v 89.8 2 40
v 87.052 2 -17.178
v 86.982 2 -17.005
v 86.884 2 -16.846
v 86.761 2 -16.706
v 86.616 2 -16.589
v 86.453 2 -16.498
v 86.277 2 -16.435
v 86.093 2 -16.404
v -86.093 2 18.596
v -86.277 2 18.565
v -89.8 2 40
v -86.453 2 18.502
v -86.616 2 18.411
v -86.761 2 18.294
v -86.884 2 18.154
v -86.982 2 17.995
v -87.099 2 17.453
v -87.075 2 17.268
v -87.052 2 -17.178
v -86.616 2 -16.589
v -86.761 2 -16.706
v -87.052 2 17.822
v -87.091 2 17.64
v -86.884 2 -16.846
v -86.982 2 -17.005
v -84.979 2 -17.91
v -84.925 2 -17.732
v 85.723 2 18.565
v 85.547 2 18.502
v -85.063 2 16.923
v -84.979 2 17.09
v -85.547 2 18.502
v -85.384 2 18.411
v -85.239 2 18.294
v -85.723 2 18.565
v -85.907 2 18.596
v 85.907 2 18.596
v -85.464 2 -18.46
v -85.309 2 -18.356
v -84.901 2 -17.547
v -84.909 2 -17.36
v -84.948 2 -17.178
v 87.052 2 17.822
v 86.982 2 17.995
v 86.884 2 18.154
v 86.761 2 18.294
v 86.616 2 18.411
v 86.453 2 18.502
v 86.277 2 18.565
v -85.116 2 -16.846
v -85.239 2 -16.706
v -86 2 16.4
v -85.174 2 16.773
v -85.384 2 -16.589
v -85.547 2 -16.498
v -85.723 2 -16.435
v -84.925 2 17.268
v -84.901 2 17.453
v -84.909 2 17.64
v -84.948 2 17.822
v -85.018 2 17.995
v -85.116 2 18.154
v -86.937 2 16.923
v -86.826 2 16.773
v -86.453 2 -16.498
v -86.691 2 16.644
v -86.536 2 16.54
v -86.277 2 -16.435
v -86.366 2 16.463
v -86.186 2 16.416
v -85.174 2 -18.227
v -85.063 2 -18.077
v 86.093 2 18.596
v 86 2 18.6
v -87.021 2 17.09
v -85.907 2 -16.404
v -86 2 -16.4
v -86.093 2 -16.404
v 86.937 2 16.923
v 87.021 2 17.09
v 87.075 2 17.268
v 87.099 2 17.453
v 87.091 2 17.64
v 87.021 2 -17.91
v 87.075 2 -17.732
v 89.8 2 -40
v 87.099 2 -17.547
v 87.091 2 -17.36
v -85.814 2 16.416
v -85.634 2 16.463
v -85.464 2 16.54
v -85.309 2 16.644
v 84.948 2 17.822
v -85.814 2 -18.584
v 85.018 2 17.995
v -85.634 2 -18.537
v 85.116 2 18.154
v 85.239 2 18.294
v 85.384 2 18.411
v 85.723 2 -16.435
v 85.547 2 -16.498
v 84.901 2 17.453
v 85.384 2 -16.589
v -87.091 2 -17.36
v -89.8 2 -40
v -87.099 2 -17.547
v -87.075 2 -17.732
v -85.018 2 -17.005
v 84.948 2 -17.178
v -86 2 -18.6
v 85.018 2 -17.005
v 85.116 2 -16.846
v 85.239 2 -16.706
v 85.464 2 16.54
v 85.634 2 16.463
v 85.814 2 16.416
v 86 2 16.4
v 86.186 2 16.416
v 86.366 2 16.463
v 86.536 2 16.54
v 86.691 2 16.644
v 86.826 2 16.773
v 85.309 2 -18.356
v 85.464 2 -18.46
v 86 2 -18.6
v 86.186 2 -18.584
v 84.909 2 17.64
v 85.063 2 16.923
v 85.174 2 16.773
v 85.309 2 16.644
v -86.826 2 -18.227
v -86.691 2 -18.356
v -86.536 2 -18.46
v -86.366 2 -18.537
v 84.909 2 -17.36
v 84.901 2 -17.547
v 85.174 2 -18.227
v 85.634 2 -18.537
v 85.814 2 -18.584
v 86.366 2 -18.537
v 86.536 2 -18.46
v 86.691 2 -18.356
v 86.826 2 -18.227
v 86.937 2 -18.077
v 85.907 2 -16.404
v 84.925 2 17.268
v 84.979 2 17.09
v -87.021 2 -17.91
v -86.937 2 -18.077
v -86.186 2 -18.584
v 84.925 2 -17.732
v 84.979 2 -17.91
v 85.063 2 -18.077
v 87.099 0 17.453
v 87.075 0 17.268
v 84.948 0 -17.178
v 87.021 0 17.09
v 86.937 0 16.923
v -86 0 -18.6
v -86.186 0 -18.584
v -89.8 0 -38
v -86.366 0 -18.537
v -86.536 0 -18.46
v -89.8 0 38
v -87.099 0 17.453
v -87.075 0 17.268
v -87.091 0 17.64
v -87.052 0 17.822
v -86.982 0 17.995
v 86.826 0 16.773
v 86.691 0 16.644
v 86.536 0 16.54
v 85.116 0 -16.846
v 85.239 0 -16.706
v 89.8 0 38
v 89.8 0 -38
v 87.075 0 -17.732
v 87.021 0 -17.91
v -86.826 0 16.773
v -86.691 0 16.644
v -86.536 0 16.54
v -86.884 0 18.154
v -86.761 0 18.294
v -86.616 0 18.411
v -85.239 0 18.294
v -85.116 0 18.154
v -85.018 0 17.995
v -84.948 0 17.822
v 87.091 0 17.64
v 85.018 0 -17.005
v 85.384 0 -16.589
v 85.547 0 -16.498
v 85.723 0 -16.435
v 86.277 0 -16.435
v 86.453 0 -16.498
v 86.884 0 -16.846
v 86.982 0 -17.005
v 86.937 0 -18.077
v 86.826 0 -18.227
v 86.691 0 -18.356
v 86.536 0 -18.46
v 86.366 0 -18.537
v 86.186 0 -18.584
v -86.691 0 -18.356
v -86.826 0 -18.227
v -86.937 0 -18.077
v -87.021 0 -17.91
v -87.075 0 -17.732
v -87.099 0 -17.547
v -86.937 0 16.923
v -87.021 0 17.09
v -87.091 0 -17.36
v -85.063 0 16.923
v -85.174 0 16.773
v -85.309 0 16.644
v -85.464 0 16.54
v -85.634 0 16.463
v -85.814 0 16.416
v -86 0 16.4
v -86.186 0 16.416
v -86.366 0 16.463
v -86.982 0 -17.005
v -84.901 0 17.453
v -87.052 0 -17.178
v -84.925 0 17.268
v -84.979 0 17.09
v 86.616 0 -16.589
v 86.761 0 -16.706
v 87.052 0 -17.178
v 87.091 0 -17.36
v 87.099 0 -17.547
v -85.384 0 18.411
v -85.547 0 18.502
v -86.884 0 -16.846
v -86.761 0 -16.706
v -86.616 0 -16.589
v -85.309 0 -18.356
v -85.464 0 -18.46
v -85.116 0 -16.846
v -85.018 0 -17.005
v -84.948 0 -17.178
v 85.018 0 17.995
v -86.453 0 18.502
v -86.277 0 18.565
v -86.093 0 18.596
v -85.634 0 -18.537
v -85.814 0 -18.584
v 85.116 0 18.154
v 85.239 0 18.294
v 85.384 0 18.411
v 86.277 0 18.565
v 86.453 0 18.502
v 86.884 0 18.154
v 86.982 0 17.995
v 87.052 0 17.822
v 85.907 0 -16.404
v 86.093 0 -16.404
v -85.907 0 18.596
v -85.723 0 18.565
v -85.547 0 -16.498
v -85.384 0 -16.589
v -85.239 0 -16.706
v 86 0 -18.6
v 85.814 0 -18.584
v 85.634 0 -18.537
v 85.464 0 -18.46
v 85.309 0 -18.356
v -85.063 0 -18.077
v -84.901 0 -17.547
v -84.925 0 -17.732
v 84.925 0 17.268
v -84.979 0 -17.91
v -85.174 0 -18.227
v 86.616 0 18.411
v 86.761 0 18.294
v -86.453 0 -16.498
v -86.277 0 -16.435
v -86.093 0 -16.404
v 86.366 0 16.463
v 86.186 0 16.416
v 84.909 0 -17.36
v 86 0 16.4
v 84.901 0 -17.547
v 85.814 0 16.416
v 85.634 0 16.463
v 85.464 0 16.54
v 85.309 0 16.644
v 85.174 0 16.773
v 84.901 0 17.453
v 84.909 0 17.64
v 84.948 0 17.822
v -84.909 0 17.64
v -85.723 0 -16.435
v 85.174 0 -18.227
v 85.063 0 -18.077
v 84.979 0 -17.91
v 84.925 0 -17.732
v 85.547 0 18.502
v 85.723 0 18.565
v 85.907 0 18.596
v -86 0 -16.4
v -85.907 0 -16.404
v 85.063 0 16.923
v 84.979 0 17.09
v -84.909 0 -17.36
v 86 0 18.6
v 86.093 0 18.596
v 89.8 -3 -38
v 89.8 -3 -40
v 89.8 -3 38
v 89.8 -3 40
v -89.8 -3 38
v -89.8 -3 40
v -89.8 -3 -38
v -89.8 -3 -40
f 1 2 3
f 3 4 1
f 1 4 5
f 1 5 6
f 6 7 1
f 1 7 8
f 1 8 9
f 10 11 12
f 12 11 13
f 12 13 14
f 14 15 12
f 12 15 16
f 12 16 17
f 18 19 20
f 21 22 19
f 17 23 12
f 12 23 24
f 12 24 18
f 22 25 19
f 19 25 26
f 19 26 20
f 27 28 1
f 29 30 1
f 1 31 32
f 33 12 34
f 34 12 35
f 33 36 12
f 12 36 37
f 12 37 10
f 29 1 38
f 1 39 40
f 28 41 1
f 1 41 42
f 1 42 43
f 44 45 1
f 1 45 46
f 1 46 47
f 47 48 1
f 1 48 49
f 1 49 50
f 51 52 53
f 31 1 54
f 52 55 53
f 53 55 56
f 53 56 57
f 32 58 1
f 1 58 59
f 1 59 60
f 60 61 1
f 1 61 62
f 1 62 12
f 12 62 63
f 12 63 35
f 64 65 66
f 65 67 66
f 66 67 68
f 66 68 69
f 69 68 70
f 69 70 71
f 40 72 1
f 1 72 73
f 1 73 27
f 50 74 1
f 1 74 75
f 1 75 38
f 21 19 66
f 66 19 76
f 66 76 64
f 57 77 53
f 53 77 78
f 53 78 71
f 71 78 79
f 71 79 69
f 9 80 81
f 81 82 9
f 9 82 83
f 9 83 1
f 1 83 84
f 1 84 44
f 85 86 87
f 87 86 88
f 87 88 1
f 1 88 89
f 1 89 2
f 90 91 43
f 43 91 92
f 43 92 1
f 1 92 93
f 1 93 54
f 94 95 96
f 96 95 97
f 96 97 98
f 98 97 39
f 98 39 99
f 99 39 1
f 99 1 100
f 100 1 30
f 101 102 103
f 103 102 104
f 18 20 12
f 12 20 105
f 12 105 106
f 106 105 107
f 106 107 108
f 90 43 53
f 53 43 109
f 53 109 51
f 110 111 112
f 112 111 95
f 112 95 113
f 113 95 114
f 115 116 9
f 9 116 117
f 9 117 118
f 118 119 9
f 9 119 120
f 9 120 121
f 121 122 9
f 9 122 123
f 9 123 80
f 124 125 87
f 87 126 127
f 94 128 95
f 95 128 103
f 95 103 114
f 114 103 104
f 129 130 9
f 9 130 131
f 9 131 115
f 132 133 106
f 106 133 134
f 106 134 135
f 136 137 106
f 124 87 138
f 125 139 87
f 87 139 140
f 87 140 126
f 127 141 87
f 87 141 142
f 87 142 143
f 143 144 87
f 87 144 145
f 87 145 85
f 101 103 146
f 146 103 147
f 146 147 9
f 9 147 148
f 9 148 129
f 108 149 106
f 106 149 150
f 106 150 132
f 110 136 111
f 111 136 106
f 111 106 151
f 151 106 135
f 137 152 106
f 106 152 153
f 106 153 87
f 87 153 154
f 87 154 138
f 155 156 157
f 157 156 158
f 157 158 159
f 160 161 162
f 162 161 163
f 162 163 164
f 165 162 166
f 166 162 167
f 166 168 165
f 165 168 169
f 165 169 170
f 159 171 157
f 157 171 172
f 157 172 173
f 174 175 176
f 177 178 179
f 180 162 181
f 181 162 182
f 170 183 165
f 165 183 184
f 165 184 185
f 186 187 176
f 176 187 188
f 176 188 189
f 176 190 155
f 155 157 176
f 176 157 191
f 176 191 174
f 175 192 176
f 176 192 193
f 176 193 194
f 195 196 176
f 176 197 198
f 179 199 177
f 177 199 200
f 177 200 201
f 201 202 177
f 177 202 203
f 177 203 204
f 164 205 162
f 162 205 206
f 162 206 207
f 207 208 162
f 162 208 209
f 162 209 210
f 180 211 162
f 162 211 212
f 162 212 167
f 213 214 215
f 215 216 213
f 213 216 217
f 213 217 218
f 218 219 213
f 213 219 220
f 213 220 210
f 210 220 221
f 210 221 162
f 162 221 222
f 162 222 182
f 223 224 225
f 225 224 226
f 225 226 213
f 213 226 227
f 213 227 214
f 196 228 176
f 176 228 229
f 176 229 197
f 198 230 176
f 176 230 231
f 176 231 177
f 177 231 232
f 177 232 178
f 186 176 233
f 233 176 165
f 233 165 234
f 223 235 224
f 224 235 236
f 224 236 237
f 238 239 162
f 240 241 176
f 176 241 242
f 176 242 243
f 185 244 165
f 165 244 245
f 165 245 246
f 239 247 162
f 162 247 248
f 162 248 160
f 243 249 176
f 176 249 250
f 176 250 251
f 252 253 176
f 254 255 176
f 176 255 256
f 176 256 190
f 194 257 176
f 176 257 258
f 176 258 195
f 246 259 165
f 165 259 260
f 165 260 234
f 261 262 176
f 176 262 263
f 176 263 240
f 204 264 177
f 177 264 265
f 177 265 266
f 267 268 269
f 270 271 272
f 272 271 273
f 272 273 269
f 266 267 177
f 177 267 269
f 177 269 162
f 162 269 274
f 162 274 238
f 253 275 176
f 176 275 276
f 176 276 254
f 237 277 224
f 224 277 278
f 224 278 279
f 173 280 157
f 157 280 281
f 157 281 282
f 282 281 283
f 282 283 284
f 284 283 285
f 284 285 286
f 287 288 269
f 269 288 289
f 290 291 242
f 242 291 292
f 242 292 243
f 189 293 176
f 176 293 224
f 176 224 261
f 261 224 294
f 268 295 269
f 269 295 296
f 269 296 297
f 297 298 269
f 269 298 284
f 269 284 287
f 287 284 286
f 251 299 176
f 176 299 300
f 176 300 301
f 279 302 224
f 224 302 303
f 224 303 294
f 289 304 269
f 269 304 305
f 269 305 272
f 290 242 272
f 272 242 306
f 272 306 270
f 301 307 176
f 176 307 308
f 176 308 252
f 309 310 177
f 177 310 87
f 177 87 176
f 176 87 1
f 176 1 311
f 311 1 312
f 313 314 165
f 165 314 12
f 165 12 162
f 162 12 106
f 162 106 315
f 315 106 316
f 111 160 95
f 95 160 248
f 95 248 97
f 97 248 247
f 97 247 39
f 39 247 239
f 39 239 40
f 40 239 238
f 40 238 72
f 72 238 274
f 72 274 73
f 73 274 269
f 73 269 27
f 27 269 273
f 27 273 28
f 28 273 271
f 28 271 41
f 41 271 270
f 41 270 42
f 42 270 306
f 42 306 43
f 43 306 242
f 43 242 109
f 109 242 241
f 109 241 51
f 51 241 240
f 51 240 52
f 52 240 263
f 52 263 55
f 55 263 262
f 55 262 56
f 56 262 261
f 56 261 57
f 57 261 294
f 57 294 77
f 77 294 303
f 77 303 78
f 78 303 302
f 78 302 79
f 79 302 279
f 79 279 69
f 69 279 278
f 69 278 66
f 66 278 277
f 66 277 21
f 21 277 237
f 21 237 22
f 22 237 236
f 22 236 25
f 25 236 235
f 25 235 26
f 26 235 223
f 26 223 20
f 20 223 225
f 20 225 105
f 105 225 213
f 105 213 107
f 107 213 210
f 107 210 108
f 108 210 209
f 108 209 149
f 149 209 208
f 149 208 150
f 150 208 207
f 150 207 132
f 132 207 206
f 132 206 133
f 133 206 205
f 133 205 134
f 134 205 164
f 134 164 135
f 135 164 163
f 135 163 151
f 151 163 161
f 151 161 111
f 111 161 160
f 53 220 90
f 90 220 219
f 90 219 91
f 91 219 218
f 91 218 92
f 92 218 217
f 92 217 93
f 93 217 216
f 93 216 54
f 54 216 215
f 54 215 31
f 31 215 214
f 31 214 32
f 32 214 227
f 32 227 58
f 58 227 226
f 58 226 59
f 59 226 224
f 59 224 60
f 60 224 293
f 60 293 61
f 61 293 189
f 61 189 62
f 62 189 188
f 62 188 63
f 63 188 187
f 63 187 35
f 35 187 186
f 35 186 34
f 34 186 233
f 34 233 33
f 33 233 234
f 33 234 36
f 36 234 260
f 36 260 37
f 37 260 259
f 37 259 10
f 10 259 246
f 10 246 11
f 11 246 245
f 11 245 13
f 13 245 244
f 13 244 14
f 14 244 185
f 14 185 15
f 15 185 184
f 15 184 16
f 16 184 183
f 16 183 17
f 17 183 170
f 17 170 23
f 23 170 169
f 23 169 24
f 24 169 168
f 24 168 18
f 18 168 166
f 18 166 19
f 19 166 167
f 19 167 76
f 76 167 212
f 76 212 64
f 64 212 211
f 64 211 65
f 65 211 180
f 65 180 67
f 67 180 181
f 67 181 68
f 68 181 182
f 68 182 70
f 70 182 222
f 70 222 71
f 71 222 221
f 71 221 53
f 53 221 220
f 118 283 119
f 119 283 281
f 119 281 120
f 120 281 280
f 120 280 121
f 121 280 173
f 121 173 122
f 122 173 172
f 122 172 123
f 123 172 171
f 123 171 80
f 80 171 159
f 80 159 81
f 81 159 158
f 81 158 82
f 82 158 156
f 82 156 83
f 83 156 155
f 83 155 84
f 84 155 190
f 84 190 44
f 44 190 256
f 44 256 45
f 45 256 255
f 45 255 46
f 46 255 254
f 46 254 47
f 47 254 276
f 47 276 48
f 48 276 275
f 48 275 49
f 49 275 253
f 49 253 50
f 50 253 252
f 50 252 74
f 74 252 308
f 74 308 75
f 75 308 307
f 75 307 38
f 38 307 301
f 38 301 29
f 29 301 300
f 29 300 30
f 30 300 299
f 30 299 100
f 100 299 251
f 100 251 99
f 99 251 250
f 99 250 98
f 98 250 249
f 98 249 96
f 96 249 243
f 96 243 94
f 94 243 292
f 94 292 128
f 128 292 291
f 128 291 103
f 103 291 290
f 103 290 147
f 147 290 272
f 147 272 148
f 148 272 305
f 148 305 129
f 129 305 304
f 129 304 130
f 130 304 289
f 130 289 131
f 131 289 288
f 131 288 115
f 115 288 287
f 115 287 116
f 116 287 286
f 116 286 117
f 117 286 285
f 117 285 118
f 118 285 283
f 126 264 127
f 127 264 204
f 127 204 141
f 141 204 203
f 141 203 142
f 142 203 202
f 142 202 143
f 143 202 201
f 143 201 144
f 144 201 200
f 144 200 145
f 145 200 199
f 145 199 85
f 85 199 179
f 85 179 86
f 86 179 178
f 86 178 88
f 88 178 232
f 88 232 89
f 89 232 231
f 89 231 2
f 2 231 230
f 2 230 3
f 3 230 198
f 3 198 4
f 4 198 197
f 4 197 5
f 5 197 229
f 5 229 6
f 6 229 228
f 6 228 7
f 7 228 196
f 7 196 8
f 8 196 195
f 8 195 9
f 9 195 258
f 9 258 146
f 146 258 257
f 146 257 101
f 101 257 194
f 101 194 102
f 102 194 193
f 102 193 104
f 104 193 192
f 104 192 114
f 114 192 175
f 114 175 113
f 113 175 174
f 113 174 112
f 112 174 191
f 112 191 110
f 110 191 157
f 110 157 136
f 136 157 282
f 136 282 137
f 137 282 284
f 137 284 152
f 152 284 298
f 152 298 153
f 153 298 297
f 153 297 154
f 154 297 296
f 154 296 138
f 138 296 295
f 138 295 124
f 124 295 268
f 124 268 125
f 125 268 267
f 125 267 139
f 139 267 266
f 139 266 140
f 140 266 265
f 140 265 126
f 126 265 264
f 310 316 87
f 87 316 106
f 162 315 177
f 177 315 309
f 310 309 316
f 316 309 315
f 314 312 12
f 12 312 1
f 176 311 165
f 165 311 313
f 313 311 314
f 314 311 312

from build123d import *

# Parameters (mm, degrees)
SKETCH_1_W      = 179.6
SKETCH_1_H      = 76
SKETCH_1_R      = 1.1
EXTRUDE_1_DEPTH = 2
SKETCH_2_W      = 179.6
SKETCH_2_H      = 2
EXTRUDE_2_DEPTH = 5


with BuildPart() as part:
    # 草图1 → 凸台-拉伸1 (new body)
    with BuildSketch(Plane(origin=(0, 0, 0), x_dir=(1, 0, 0), z_dir=(0, 1, 0))):
        Rectangle(SKETCH_1_W, SKETCH_1_H)
        with Locations(Location((-86, 17.5, 0), (0, 0, 270))):
            Circle(SKETCH_1_R, mode=Mode.SUBTRACT)
        with Locations(Location((-86, -17.5, 0), (0, 0, 90))):
            Circle(SKETCH_1_R, mode=Mode.SUBTRACT)
        with Locations(Location((86, -17.5, 0), (0, 0, 270))):
            Circle(SKETCH_1_R, mode=Mode.SUBTRACT)
        with Locations(Location((86, 17.5, 0), (0, 0, 90))):
            Circle(SKETCH_1_R, mode=Mode.SUBTRACT)
    extrude(amount=EXTRUDE_1_DEPTH)

    # 草图2 → 凸台-拉伸2 (add)
    with BuildSketch(Plane(origin=(0, 2, 0), x_dir=(1, 0, 0), z_dir=(0, 1, 0))):
        with Locations((0, 39)):
            Rectangle(SKETCH_2_W, SKETCH_2_H)
        with Locations((0, -39)):
            Rectangle(SKETCH_2_W, SKETCH_2_H)
    extrude(amount=-EXTRUDE_2_DEPTH)


solid = part.part
